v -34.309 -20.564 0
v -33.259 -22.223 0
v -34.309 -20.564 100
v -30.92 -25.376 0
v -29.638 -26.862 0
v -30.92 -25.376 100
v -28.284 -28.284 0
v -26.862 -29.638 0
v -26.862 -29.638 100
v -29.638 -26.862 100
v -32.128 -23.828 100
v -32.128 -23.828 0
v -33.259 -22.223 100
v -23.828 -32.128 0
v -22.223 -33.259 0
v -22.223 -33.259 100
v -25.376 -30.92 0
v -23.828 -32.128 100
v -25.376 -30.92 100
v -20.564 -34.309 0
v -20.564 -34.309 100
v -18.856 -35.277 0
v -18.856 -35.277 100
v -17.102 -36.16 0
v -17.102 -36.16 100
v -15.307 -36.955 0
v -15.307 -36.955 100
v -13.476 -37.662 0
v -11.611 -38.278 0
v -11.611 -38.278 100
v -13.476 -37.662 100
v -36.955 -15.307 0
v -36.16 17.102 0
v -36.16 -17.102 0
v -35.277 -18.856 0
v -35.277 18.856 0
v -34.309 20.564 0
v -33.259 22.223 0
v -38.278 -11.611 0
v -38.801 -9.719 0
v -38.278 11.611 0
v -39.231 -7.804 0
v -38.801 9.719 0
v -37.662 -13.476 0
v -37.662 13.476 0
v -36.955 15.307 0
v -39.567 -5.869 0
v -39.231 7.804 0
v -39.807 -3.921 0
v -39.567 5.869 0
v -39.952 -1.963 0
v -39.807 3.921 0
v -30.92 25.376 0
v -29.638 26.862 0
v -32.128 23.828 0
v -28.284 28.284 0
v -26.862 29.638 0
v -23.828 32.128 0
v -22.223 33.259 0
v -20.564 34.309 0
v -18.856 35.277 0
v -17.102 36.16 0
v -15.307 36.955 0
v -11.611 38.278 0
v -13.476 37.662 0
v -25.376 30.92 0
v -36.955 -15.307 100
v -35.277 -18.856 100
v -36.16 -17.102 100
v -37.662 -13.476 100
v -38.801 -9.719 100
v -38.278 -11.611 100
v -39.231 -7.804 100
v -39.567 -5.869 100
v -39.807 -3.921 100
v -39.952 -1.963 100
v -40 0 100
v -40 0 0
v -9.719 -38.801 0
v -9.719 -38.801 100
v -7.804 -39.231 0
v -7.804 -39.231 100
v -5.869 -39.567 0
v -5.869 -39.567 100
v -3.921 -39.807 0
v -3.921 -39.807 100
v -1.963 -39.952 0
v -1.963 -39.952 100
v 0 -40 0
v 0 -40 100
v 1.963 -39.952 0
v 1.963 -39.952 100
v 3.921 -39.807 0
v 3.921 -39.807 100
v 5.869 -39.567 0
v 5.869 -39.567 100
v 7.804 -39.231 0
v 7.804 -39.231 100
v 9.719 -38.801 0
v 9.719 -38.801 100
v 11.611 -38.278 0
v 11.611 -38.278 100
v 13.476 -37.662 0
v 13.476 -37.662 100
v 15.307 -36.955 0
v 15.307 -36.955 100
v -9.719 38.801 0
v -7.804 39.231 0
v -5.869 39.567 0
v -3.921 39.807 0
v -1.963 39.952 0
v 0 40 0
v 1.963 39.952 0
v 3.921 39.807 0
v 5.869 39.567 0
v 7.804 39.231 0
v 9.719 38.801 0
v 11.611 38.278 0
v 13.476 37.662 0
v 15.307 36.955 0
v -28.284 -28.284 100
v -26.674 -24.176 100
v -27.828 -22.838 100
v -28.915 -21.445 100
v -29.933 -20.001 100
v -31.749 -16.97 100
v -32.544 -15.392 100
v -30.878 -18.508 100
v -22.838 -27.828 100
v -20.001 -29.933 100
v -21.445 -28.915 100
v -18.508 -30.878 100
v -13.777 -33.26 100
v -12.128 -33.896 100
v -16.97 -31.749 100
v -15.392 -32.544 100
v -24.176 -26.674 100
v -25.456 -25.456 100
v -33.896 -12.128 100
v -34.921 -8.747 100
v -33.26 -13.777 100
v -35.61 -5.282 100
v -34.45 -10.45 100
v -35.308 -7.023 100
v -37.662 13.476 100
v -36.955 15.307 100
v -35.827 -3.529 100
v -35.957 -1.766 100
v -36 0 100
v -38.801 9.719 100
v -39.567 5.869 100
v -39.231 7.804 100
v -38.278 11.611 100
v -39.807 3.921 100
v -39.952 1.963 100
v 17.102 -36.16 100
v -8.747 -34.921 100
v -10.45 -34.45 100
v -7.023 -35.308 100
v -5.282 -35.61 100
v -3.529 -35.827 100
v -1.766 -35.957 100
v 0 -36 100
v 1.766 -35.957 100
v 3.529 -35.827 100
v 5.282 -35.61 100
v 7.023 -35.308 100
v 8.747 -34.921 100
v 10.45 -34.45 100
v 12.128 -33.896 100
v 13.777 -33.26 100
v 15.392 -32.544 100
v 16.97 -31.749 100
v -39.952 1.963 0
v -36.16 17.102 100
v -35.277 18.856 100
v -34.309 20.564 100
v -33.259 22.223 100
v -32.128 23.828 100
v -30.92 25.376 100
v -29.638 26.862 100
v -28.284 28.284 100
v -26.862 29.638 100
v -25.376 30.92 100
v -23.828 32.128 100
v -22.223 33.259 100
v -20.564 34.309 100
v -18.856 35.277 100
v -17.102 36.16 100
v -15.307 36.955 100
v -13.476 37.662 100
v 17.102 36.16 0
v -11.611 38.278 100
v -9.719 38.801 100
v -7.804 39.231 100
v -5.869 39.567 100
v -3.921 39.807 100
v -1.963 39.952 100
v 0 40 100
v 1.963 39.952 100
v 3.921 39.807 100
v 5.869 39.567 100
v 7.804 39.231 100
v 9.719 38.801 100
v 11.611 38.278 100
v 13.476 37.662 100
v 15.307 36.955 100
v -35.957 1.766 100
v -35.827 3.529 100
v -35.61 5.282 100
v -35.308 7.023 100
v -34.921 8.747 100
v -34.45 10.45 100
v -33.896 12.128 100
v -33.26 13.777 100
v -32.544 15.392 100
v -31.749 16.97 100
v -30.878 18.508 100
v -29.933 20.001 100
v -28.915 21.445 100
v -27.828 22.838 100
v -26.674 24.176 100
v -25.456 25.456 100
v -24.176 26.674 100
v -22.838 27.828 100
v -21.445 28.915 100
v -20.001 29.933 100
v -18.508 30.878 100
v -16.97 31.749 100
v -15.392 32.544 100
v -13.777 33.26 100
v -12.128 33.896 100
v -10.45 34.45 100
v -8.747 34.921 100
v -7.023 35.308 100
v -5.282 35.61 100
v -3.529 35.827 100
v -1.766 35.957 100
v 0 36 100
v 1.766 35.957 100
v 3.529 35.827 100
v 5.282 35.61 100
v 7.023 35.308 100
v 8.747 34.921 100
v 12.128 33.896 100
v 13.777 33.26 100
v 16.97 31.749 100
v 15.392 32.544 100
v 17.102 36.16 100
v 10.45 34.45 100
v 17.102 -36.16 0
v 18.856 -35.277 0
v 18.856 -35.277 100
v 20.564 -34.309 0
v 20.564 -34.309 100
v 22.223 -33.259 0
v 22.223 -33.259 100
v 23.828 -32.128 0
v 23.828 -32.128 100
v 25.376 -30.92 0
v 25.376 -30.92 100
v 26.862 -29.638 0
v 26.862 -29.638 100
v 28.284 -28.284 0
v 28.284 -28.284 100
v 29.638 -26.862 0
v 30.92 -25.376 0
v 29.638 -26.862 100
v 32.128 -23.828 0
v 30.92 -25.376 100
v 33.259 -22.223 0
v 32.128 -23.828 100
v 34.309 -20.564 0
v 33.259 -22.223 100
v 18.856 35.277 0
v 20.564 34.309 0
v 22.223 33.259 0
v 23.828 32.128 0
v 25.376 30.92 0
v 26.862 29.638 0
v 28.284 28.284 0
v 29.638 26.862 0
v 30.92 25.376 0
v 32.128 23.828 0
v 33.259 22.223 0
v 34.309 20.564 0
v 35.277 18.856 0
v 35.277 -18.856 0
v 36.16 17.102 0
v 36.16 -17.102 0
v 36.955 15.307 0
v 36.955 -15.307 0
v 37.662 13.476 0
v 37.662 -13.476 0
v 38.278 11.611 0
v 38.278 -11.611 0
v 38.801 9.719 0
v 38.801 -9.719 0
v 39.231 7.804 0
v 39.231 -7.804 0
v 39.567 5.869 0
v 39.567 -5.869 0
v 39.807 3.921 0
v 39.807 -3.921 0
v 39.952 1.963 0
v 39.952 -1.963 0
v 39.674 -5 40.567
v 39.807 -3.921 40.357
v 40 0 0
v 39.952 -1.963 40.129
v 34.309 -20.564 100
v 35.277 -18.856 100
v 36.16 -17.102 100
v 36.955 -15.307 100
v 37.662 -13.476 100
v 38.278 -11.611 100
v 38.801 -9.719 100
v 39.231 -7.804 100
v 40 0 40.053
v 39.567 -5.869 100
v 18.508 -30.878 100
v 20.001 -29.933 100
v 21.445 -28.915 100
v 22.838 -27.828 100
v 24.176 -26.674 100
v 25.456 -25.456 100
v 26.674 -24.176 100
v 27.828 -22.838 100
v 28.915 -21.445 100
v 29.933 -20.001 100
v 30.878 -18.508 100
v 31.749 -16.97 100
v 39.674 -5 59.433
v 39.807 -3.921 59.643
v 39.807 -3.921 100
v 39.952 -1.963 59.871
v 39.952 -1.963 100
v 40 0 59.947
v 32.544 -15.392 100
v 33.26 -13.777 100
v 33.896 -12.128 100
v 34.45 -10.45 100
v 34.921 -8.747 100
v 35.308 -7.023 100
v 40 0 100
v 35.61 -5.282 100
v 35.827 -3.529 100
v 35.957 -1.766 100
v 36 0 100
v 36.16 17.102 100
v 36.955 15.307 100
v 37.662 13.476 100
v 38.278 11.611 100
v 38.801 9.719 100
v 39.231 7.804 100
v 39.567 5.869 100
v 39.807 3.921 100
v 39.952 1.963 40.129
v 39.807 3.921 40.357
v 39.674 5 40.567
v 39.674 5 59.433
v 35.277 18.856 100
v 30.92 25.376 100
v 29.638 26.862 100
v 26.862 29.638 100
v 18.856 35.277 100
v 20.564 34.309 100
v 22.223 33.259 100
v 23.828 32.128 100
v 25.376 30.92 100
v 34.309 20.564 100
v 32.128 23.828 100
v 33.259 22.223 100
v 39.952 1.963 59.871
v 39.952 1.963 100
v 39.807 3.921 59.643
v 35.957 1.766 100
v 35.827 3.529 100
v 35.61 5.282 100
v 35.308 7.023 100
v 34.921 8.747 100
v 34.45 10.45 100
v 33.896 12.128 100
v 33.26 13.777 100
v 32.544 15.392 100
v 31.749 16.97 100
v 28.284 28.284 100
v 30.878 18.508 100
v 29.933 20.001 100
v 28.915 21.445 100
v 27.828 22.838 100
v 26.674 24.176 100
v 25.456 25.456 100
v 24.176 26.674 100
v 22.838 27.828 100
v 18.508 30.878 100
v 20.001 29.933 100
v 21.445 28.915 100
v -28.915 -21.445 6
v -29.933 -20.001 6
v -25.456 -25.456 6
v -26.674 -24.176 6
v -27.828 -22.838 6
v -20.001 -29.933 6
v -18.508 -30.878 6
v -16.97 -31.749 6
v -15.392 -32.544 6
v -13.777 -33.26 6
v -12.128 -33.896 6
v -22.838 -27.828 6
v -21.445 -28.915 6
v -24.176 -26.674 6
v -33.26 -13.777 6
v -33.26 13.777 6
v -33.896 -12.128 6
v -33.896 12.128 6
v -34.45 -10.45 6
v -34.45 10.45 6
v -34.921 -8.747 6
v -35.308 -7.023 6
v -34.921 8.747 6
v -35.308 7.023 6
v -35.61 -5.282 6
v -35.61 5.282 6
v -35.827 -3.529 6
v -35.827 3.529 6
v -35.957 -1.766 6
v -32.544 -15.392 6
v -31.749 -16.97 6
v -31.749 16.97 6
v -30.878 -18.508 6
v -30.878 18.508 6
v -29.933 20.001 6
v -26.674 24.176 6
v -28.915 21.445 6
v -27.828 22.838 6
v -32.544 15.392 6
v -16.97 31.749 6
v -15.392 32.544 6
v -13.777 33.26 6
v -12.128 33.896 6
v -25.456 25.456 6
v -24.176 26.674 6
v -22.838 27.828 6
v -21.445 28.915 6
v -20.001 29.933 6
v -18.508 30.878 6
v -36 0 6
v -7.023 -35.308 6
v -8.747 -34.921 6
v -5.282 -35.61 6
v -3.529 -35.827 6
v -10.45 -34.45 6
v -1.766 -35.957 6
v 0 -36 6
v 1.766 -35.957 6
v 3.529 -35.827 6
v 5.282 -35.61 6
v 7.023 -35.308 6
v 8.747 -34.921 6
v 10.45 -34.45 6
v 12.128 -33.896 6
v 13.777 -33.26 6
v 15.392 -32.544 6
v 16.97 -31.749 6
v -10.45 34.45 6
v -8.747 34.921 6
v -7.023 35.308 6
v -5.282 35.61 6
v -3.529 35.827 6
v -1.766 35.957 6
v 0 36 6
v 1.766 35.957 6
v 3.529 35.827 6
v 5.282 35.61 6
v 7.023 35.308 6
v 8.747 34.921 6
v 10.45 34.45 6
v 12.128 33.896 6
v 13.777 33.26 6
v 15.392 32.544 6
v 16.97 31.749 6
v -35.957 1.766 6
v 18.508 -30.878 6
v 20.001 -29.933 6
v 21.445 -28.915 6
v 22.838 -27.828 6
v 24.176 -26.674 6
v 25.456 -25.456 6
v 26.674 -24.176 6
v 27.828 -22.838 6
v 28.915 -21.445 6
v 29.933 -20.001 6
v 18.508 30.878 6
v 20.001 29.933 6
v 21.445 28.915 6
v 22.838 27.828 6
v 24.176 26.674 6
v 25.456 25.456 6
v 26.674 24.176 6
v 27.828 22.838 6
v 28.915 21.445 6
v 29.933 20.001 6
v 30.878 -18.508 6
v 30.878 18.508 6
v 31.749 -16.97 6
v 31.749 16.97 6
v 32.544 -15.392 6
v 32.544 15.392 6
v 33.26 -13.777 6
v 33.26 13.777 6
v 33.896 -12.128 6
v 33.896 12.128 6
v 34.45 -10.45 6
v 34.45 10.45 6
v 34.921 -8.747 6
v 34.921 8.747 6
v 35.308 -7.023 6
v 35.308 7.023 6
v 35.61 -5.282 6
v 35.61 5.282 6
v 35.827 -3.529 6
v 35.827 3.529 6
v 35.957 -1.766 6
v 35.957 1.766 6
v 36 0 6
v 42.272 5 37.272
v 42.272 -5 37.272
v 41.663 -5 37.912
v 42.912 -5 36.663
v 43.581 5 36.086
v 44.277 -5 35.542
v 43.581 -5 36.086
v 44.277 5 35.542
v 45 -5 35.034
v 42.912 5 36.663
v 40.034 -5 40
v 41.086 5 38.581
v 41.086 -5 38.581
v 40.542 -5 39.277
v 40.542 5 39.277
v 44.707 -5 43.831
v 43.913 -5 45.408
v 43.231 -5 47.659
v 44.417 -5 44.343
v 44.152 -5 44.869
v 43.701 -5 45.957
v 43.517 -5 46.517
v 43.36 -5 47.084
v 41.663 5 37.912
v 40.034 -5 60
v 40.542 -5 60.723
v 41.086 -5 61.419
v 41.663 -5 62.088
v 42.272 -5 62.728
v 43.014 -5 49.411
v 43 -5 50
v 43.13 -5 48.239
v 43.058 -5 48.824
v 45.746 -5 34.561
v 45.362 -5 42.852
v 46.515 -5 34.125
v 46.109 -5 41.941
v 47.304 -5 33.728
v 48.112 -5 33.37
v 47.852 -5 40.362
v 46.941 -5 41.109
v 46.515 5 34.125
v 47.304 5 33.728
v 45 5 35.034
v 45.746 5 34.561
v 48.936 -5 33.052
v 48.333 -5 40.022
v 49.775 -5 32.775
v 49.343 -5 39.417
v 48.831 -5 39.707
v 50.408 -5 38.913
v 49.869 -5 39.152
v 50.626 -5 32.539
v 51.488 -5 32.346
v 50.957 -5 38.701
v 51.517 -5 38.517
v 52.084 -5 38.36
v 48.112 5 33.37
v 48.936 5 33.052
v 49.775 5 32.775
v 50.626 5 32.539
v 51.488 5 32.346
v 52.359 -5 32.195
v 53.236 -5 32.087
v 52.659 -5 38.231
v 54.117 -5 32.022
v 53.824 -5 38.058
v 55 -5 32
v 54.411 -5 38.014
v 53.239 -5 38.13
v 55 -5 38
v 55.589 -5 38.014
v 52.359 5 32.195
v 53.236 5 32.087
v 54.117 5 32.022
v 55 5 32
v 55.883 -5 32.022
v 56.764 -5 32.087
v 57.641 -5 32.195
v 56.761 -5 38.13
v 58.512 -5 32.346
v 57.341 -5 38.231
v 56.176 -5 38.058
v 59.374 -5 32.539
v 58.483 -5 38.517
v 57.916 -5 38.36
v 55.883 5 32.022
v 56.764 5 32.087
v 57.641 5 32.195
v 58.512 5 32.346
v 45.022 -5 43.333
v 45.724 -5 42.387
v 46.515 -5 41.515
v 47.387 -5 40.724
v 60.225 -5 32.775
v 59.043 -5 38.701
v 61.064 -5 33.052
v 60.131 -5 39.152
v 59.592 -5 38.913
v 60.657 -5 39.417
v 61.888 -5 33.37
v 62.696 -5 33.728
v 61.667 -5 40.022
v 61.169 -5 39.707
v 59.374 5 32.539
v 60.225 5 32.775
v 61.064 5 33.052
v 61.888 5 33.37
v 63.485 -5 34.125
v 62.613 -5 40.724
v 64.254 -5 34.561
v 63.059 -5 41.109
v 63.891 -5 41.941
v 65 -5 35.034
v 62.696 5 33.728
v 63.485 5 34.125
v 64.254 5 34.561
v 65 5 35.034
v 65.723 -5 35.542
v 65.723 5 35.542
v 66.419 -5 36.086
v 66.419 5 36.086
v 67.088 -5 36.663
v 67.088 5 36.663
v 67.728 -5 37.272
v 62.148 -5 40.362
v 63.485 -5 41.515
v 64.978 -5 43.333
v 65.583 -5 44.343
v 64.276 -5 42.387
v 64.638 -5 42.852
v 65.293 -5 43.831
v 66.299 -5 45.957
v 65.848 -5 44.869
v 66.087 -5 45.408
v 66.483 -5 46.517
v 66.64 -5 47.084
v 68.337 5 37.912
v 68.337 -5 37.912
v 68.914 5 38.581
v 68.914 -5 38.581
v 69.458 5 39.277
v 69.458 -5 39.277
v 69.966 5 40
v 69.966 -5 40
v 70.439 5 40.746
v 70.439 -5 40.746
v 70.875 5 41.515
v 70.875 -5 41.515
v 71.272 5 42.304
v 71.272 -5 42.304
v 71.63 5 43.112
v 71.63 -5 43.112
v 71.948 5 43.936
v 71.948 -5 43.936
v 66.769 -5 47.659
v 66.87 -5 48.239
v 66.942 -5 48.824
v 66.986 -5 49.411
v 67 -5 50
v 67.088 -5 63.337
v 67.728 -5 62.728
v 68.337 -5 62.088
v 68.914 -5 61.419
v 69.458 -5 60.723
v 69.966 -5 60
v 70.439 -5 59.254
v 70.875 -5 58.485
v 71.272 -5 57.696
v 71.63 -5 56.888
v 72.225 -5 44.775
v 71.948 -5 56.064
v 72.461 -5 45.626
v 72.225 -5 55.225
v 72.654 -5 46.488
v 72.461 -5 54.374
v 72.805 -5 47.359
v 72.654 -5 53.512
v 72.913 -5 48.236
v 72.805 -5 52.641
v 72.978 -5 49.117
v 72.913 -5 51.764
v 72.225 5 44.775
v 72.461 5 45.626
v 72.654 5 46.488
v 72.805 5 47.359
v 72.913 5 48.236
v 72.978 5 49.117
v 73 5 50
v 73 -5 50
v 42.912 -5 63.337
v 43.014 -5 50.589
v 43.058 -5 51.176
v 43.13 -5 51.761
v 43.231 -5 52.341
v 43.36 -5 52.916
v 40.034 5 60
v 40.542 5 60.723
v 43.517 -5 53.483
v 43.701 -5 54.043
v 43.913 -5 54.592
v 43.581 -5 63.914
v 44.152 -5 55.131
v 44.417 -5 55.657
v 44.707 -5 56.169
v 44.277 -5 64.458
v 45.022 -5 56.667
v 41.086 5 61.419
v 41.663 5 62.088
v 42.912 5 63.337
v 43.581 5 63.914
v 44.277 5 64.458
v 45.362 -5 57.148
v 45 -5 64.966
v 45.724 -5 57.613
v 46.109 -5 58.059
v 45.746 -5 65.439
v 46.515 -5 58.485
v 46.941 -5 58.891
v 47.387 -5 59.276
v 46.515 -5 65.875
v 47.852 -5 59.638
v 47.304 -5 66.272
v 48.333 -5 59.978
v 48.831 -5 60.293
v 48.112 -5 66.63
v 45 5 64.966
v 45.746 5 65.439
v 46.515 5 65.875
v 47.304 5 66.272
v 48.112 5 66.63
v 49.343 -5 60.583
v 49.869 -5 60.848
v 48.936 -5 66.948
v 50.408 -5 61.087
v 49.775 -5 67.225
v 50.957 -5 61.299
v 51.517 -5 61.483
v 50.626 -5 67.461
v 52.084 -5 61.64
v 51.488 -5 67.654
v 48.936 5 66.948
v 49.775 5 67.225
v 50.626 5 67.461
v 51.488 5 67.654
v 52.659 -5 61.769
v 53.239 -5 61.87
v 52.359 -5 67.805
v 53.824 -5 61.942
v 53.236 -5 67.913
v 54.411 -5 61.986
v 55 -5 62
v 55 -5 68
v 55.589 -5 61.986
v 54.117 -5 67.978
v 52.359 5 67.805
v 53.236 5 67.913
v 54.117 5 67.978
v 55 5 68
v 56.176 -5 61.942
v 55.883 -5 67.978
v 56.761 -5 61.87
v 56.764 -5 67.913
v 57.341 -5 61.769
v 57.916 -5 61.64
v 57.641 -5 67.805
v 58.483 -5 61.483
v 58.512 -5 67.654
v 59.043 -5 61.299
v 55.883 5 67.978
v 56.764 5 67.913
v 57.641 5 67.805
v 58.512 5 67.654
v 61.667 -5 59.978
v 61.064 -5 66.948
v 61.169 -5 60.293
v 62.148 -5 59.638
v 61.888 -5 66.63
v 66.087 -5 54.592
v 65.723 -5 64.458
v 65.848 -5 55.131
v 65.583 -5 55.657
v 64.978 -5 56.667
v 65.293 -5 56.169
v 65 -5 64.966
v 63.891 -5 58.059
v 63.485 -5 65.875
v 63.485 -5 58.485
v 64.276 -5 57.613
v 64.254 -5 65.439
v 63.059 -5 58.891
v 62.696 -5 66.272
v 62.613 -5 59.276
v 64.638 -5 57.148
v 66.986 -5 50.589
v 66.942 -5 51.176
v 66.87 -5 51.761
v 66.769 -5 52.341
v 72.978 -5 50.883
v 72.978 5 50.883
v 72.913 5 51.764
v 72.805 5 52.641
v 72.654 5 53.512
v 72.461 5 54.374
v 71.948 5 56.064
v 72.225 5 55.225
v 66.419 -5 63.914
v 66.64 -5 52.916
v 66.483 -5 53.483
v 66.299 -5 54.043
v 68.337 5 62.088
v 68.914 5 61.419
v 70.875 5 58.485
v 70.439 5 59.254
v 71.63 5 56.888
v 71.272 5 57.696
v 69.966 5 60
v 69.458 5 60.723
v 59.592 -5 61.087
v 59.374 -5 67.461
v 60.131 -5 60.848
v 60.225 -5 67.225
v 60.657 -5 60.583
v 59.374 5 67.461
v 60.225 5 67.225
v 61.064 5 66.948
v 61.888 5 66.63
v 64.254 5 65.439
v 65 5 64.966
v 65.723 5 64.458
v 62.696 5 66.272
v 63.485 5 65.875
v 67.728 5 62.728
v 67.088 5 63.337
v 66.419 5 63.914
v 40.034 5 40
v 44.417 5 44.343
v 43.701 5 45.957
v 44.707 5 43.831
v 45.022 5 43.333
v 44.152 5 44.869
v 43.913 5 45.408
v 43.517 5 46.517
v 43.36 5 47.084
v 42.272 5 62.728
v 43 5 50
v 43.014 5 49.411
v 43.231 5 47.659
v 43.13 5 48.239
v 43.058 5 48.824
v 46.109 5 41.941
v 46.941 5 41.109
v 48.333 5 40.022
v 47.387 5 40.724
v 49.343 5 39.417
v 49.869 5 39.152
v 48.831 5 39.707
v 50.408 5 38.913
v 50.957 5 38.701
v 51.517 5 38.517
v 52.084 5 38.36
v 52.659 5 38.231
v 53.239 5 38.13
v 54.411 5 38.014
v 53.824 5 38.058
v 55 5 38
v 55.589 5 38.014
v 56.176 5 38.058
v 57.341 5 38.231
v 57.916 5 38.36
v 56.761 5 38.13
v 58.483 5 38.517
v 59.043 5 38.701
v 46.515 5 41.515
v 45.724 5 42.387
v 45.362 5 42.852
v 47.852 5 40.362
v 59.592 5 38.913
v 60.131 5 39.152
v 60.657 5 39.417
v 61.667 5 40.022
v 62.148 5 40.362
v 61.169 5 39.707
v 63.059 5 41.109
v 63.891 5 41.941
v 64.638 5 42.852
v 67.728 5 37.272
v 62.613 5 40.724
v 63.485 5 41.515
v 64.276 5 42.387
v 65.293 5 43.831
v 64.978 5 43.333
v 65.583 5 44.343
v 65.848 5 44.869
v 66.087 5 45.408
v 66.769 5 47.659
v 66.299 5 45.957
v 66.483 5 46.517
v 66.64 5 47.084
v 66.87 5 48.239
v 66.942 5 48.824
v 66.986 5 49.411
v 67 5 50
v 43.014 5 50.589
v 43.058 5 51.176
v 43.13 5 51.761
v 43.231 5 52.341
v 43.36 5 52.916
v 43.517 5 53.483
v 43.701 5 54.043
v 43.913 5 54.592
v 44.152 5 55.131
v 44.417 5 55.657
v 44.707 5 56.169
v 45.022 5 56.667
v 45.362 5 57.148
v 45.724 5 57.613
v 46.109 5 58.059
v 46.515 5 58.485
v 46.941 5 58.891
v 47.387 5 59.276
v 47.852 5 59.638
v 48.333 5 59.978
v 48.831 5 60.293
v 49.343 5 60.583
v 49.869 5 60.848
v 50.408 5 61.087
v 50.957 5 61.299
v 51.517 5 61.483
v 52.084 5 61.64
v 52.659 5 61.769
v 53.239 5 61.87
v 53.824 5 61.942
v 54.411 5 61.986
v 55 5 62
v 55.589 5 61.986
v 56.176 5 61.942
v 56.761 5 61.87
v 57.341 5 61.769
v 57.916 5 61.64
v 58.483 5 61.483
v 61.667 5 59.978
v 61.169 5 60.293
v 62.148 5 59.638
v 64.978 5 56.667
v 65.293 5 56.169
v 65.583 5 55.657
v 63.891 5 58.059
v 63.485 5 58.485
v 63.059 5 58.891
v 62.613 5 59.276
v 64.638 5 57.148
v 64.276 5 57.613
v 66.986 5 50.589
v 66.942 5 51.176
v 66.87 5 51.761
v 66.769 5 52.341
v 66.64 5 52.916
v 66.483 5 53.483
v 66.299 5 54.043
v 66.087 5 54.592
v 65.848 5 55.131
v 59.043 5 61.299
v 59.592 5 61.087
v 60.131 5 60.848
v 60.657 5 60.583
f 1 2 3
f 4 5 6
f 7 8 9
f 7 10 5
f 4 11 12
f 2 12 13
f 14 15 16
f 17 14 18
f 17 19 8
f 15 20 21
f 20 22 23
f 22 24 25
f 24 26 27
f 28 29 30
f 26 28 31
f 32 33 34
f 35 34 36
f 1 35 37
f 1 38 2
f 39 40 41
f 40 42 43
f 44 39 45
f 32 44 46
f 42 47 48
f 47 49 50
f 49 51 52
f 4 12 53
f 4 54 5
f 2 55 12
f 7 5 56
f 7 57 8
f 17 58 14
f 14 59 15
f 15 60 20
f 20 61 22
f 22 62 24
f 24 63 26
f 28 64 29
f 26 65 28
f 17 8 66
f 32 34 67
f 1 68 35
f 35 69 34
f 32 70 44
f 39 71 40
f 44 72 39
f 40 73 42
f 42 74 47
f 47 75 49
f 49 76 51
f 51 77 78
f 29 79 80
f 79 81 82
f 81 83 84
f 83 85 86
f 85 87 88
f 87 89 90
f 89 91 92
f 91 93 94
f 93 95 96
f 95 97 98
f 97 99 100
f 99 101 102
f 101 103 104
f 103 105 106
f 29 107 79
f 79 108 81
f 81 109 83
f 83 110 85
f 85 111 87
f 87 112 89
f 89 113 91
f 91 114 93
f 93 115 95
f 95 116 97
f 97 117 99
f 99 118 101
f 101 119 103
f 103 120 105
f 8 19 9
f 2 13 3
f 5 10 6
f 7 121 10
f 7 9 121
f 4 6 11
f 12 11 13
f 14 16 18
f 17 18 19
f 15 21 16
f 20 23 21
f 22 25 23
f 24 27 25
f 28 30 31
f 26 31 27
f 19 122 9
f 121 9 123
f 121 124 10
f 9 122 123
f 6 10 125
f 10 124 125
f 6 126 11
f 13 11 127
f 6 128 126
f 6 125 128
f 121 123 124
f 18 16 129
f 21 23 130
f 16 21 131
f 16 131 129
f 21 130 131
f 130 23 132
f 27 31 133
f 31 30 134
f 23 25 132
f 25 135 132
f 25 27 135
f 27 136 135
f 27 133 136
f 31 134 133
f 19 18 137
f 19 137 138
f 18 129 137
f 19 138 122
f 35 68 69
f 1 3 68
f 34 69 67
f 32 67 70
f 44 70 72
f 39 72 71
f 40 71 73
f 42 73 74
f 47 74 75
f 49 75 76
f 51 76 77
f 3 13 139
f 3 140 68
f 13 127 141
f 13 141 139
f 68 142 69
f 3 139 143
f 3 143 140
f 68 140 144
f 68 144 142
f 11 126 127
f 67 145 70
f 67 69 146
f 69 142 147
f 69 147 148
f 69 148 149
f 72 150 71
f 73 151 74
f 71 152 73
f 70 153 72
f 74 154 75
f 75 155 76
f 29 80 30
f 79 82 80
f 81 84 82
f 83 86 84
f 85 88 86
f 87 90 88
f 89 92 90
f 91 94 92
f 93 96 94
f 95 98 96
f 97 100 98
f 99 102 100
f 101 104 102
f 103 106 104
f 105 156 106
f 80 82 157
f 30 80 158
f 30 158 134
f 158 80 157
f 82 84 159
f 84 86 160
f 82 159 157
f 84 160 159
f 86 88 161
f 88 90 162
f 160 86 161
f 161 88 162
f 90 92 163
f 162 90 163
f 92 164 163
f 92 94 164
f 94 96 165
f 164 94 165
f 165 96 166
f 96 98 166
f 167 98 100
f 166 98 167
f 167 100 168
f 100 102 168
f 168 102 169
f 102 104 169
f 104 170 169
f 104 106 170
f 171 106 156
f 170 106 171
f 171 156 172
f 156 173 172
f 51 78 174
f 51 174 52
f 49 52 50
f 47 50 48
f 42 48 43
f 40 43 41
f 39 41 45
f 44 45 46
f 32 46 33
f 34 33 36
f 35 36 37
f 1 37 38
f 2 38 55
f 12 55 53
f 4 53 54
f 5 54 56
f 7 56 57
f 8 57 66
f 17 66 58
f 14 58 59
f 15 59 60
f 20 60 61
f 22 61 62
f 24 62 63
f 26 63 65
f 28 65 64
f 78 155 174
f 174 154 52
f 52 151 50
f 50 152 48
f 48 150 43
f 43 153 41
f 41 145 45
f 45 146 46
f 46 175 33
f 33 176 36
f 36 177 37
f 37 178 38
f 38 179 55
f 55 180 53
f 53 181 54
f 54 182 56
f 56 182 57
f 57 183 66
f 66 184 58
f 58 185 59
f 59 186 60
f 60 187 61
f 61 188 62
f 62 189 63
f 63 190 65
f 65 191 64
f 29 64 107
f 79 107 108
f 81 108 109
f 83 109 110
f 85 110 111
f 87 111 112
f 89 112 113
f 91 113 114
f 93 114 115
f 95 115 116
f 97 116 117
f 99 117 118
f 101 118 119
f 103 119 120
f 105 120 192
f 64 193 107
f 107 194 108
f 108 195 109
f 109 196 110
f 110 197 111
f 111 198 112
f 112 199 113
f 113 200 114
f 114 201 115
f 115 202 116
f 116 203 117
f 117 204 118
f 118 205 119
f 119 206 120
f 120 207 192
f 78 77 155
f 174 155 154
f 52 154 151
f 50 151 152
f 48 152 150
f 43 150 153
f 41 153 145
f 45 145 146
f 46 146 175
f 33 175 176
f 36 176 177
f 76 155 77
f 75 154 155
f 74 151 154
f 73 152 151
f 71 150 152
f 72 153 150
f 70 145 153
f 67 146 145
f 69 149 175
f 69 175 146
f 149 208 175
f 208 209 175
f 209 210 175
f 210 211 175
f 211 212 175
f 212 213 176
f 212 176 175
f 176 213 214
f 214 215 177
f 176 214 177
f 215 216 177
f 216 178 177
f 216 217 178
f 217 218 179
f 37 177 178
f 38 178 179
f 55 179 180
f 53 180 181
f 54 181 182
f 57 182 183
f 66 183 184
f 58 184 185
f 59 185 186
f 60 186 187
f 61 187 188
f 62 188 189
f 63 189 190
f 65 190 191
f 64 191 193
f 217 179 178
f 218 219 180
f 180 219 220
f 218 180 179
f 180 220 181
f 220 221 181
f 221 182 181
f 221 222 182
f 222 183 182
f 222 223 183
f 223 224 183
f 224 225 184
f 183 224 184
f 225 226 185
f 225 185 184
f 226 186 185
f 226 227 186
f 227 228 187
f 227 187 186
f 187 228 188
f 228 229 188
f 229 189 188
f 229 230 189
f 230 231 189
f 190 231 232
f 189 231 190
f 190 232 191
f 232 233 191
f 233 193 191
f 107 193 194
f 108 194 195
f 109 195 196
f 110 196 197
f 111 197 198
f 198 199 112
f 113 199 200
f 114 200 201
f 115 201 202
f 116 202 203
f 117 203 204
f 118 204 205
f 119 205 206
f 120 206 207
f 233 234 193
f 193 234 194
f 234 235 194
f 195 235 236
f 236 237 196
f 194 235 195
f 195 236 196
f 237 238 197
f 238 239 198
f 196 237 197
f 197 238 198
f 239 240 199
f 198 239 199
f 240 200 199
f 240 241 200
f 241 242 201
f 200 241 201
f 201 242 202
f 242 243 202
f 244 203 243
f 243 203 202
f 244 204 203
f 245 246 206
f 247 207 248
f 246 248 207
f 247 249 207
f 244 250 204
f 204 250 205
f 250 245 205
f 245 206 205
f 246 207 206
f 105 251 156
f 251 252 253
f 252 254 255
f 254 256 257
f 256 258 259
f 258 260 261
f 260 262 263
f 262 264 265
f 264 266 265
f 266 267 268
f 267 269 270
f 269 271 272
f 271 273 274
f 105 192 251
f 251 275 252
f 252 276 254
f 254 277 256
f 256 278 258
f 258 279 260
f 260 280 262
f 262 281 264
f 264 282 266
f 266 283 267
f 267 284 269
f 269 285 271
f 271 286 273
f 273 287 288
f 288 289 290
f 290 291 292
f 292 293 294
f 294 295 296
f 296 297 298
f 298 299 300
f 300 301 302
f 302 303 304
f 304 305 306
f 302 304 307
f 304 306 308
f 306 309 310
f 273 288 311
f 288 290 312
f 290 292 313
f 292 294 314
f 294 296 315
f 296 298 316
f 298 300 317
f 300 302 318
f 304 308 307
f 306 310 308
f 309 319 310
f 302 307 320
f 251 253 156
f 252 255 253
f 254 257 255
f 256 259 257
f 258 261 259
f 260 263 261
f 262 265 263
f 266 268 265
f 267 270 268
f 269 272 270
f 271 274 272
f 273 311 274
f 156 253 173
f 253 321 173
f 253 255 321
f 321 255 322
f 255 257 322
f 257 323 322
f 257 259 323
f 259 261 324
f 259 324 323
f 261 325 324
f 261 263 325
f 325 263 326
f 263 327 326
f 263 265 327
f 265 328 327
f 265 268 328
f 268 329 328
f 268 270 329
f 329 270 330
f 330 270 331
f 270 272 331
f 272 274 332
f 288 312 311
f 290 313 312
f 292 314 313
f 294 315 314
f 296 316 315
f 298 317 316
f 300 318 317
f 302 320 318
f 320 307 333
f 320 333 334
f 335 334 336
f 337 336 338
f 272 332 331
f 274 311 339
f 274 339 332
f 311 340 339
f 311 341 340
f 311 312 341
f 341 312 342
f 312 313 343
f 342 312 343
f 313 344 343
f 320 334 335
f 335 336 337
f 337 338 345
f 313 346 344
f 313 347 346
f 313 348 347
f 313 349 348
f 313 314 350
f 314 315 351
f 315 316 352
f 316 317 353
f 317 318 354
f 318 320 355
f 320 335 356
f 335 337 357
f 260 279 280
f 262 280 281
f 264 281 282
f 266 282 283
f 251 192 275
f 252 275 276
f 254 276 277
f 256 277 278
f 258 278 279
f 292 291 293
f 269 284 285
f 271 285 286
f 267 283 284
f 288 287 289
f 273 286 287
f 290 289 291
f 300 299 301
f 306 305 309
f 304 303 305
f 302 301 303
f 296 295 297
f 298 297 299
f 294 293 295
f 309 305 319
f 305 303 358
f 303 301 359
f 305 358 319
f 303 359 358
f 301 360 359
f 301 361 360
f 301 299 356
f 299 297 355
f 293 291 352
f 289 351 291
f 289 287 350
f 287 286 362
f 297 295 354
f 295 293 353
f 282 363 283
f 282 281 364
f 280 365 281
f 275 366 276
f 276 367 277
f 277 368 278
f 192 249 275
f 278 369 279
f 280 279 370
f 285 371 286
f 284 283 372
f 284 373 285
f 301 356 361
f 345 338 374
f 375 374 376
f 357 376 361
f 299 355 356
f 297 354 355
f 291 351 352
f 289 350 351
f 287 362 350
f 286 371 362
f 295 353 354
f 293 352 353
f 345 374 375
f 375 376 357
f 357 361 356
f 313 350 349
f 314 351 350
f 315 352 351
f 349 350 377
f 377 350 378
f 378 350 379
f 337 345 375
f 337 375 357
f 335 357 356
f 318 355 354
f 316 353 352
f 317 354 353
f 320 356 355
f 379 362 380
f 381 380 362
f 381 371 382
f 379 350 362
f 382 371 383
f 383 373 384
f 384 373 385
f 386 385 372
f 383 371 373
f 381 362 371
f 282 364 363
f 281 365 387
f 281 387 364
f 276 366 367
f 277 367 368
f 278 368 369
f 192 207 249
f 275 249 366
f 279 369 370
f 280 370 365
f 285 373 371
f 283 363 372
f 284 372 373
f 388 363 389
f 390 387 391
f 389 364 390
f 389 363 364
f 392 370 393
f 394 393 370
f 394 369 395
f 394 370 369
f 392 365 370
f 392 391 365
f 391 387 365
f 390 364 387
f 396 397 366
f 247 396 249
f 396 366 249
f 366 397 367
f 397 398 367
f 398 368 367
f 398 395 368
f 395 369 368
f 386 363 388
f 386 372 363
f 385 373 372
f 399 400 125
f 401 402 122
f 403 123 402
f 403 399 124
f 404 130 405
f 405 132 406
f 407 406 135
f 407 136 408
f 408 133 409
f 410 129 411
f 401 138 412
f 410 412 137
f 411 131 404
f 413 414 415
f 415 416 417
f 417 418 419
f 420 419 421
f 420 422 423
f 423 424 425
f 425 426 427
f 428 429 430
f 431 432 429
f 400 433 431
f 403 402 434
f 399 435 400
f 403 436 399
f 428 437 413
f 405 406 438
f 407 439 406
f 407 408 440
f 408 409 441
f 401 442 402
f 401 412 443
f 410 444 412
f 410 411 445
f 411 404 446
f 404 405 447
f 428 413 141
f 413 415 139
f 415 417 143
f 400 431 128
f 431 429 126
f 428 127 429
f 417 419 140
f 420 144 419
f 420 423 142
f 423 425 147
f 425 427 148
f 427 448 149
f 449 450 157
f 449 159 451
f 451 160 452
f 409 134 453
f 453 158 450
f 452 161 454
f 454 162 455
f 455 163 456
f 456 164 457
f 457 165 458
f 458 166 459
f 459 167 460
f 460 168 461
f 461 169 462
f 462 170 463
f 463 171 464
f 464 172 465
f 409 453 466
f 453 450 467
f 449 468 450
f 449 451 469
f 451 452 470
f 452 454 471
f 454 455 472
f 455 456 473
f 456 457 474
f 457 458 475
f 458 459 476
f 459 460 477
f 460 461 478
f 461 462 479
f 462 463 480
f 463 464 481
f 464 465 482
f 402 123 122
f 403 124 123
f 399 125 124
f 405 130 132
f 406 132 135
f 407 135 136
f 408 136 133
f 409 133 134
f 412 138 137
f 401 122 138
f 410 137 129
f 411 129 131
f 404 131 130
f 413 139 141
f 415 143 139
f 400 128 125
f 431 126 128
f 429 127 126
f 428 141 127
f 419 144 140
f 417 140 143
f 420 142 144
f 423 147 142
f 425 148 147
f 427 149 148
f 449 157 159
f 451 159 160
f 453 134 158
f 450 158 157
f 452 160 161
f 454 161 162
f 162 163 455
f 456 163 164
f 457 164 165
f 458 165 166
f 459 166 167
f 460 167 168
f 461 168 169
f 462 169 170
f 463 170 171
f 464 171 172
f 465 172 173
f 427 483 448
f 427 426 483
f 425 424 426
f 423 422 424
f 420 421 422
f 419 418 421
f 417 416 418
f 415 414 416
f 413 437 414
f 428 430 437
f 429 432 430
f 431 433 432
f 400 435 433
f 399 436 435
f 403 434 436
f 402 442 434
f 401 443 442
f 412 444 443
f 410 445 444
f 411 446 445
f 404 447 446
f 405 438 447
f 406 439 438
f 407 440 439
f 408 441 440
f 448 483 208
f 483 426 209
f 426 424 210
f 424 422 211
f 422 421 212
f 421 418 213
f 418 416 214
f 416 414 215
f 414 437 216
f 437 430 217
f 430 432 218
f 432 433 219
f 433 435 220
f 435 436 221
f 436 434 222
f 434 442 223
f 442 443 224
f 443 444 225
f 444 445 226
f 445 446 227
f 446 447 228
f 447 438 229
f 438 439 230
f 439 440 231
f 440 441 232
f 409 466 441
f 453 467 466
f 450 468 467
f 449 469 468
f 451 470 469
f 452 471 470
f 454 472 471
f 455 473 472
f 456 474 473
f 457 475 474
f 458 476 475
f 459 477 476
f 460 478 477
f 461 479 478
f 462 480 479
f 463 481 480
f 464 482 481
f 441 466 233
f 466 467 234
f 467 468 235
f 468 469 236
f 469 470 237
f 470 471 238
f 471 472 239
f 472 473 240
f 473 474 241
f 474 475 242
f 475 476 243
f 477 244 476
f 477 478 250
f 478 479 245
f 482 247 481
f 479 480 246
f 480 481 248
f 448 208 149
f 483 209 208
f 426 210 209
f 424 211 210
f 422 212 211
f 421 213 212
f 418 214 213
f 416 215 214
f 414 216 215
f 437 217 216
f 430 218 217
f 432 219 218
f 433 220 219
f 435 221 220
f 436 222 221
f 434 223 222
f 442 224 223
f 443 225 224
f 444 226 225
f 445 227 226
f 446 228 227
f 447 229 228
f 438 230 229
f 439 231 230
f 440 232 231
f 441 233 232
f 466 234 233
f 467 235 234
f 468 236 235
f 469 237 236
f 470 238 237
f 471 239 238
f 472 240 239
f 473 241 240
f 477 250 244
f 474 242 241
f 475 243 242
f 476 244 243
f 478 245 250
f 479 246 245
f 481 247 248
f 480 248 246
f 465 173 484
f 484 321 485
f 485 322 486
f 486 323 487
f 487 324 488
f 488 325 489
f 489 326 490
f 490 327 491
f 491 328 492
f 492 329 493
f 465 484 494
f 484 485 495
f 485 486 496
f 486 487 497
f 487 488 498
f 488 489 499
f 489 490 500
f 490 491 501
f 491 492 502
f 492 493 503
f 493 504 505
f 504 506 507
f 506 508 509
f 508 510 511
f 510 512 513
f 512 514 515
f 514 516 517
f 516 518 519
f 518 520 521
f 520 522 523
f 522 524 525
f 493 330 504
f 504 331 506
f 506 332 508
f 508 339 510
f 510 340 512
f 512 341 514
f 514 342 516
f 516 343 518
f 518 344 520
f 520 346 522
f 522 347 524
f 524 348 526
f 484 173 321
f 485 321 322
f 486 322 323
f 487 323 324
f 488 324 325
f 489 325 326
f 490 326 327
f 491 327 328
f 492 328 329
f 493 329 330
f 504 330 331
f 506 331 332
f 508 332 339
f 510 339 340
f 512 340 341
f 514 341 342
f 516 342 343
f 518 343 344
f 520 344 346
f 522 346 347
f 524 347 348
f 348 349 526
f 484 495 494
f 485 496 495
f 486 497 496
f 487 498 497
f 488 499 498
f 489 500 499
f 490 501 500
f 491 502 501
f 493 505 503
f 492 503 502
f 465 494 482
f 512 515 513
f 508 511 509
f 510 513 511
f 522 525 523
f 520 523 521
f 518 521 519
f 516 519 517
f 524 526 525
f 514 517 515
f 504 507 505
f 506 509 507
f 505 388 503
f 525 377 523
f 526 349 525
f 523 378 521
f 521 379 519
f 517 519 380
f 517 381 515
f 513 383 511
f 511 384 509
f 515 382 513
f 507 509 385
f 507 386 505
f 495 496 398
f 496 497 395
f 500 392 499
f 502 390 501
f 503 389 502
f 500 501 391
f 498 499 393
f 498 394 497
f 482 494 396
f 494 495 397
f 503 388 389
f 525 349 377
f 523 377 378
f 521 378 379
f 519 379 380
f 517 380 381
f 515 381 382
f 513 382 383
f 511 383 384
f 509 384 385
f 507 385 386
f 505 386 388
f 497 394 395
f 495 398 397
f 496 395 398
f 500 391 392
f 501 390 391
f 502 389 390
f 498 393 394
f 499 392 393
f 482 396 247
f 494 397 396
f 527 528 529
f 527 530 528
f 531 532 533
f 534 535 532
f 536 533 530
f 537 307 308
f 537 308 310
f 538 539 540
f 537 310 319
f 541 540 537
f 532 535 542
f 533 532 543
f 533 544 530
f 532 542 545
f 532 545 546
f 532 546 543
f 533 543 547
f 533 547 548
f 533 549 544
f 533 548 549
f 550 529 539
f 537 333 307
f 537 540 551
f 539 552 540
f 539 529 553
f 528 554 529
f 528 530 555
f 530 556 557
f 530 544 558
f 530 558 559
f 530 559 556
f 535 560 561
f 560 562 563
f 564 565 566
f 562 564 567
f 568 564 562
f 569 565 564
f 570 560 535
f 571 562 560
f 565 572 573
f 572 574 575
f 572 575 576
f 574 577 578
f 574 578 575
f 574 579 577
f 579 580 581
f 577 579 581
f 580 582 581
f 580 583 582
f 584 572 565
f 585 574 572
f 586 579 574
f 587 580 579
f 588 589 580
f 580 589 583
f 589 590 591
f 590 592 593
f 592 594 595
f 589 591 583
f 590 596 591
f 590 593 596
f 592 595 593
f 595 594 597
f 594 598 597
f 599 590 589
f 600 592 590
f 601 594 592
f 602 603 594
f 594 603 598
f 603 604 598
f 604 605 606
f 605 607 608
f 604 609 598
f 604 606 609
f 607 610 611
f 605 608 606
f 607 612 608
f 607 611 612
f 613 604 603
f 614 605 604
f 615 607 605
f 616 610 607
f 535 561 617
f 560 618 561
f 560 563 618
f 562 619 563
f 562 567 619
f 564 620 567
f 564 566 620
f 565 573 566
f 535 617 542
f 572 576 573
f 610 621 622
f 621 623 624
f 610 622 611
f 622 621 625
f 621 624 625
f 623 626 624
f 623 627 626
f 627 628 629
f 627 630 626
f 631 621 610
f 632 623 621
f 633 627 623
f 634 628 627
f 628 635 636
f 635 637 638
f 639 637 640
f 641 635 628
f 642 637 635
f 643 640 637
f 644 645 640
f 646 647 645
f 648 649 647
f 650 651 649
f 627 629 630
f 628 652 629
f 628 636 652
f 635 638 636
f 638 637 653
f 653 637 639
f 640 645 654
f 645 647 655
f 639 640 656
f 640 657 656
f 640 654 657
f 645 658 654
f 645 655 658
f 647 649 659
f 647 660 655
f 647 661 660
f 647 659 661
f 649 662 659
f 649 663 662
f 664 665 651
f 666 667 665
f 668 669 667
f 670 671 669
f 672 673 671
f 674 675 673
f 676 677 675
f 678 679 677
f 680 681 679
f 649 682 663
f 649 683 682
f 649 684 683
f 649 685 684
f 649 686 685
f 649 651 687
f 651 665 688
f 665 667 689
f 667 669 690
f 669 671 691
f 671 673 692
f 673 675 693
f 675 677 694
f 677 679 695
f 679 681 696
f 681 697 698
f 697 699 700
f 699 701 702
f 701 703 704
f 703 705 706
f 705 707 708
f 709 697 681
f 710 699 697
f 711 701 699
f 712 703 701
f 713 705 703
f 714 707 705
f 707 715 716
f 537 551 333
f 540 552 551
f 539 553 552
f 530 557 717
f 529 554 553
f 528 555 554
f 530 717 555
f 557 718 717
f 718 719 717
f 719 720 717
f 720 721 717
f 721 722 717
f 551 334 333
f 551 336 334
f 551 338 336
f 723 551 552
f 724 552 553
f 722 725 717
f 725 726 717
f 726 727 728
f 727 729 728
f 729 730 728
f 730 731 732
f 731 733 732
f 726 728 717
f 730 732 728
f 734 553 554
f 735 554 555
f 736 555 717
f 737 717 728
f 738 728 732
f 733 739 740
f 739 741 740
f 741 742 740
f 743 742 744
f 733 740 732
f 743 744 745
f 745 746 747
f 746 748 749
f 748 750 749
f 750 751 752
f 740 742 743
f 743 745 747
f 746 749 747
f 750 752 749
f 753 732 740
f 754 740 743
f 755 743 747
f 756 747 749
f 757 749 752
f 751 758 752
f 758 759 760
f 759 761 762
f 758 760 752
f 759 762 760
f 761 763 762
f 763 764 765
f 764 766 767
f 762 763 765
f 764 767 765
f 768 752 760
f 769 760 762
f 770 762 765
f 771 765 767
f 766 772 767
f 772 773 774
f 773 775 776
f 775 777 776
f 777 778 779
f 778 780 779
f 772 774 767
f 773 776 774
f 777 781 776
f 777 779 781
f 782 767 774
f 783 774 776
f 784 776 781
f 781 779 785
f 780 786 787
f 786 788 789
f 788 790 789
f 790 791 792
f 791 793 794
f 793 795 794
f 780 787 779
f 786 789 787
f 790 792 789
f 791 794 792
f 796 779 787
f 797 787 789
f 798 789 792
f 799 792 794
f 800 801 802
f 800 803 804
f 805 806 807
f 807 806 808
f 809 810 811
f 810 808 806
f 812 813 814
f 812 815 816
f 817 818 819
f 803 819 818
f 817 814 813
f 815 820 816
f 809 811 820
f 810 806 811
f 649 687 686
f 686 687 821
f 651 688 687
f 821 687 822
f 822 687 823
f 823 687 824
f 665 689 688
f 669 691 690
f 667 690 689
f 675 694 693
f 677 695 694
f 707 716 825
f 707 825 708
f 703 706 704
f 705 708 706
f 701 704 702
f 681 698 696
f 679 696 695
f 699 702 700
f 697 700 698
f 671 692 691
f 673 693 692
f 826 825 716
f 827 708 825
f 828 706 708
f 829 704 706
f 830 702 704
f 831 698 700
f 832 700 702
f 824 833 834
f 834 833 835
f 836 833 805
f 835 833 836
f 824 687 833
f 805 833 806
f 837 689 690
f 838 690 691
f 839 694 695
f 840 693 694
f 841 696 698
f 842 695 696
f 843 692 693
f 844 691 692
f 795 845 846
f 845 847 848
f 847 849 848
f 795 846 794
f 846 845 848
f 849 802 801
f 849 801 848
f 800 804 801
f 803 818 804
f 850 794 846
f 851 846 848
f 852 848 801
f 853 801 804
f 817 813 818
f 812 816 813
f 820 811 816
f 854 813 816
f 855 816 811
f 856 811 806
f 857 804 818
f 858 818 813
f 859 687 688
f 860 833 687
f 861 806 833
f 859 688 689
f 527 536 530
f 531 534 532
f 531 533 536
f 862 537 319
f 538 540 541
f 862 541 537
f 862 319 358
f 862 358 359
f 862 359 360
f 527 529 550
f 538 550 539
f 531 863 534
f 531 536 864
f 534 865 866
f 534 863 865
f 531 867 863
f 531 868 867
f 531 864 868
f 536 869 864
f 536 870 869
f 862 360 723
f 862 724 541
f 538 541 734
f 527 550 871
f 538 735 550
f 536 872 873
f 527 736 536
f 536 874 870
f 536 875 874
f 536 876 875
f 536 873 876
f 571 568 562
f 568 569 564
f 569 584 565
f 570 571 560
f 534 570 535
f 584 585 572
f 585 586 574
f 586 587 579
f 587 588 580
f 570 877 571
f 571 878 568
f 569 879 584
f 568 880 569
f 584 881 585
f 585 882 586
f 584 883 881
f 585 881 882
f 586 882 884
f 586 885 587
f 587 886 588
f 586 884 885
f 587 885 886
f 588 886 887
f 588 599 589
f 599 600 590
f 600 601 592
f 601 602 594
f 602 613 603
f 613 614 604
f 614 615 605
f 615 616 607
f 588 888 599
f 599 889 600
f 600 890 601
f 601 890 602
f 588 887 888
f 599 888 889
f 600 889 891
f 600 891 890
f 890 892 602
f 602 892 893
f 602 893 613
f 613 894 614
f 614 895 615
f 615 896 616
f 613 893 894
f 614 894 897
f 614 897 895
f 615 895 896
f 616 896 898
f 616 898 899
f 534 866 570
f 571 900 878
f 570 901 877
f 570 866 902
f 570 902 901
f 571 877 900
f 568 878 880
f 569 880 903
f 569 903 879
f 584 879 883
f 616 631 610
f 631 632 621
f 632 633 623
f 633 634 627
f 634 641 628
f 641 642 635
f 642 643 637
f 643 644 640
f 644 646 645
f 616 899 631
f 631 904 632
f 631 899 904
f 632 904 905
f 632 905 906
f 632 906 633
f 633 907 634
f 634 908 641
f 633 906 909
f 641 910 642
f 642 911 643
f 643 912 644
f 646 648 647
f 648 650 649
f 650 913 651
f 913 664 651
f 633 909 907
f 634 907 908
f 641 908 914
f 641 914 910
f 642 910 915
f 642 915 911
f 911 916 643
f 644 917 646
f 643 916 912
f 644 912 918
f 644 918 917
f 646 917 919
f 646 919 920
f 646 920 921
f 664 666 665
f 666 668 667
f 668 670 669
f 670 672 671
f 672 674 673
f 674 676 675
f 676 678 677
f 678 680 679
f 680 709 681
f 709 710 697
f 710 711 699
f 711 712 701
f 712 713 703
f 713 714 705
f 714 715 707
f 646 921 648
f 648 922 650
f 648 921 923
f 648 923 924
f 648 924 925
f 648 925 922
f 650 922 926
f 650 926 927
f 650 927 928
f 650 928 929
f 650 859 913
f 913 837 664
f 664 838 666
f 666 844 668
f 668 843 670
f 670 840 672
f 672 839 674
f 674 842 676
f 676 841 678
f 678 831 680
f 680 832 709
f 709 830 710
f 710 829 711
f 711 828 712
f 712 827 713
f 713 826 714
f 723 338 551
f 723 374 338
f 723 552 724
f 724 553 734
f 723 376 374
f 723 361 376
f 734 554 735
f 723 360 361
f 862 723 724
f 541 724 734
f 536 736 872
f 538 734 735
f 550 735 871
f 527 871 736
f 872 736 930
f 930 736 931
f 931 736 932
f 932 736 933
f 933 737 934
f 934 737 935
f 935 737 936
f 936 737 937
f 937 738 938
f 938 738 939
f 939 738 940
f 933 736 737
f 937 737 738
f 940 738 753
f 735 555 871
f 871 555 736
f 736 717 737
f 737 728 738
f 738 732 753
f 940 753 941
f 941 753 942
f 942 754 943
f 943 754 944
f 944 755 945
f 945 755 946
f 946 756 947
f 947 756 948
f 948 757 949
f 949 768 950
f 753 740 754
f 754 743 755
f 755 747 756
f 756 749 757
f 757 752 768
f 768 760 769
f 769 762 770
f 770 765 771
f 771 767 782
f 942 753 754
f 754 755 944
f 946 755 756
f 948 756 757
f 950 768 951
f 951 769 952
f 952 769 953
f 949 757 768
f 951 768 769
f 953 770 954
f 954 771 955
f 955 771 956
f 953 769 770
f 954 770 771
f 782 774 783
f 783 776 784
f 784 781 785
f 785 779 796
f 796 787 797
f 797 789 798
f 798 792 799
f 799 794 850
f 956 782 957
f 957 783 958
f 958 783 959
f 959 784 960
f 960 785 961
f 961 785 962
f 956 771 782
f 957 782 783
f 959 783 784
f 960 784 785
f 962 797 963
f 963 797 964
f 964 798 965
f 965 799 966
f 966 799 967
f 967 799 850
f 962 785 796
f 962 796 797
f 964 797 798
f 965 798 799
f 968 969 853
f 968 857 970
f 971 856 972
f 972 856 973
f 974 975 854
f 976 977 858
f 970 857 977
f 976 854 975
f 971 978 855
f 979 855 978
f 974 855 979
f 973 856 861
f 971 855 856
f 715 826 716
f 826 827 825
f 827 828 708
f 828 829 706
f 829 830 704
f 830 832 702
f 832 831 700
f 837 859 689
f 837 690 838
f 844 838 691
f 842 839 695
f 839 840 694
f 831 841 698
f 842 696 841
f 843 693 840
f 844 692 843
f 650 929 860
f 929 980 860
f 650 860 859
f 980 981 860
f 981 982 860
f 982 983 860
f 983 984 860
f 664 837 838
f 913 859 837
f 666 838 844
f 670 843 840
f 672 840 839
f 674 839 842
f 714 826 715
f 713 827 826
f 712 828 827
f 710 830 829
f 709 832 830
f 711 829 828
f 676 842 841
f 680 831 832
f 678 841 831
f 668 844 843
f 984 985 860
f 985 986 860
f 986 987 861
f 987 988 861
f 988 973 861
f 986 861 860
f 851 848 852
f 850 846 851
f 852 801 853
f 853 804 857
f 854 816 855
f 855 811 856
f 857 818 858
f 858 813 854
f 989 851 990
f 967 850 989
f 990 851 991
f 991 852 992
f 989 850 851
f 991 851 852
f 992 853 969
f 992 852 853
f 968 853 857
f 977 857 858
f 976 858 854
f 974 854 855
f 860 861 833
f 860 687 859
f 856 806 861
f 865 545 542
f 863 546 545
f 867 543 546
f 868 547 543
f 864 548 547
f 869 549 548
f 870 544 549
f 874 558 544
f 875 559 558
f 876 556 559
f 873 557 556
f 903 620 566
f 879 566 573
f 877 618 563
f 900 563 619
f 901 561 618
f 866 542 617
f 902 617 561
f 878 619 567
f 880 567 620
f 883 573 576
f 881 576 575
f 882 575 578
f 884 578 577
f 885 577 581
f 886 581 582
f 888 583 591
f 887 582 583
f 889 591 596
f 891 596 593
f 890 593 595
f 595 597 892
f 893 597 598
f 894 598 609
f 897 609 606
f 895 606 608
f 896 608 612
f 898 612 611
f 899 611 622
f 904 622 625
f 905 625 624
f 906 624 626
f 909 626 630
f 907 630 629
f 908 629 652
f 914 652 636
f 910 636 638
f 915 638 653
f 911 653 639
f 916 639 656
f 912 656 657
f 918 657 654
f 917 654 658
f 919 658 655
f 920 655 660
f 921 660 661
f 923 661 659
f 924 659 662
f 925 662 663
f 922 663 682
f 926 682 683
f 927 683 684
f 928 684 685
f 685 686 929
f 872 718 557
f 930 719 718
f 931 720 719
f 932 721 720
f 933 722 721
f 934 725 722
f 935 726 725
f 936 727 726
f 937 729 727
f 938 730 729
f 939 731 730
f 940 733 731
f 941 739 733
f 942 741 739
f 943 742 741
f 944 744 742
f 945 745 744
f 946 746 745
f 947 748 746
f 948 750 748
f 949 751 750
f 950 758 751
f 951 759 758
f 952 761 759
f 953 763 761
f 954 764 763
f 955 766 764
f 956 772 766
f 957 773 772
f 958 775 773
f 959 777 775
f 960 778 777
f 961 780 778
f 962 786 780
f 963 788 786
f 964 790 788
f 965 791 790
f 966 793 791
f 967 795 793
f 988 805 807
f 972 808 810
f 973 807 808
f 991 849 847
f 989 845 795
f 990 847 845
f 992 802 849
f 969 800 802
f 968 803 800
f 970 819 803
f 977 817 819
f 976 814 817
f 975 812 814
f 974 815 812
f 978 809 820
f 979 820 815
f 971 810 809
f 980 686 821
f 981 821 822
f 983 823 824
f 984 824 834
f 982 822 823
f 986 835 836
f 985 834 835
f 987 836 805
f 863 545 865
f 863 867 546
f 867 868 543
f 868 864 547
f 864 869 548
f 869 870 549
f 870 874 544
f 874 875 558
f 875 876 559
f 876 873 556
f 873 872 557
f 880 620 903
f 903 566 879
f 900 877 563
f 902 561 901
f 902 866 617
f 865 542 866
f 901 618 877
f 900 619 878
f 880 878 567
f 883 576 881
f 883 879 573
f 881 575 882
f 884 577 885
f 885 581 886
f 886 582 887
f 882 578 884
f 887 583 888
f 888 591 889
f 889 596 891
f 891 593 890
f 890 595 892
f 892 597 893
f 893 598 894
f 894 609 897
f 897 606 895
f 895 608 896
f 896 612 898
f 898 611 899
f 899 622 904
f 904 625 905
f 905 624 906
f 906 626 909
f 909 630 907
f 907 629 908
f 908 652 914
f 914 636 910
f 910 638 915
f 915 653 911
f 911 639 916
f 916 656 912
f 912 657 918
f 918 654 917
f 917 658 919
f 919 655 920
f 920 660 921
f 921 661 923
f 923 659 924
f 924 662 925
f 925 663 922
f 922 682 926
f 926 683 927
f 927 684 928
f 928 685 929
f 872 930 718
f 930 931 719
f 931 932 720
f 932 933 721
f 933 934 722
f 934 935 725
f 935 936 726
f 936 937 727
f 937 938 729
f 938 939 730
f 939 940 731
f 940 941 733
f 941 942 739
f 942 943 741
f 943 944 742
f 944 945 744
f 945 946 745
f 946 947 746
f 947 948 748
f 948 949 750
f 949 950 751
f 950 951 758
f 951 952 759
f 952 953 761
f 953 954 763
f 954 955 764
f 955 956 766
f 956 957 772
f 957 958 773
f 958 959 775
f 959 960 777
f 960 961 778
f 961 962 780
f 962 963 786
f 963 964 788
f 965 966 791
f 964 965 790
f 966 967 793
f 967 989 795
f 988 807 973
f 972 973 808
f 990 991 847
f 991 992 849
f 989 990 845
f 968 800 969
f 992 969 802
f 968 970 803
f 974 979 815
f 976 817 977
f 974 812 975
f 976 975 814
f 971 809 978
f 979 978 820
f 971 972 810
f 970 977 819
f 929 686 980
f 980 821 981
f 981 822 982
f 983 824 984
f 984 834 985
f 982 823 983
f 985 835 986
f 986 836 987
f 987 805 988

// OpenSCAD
$fn = 128;

// マグカップ寸法
outer_radius = 40;
height = 100;
wall_thickness = 4;
bottom_thickness = 6;

// 取手寸法
handle_center_x = 55;
handle_center_z = height / 2;
handle_outer_radius = 18;
handle_inner_radius = 12;
handle_depth = 10;

// カップ本体
difference() {
    cylinder(h = height, r = outer_radius);

    translate([0, 0, bottom_thickness])
        cylinder(
            h = height - bottom_thickness + 1,
            r = outer_radius - wall_thickness
        );
}

// リング状の取手
translate([handle_center_x, 0, handle_center_z])
rotate([90, 0, 0])
difference() {
    cylinder(h = handle_depth, r = handle_outer_radius, center = true);
    cylinder(h = handle_depth + 2, r = handle_inner_radius, center = true);
}
